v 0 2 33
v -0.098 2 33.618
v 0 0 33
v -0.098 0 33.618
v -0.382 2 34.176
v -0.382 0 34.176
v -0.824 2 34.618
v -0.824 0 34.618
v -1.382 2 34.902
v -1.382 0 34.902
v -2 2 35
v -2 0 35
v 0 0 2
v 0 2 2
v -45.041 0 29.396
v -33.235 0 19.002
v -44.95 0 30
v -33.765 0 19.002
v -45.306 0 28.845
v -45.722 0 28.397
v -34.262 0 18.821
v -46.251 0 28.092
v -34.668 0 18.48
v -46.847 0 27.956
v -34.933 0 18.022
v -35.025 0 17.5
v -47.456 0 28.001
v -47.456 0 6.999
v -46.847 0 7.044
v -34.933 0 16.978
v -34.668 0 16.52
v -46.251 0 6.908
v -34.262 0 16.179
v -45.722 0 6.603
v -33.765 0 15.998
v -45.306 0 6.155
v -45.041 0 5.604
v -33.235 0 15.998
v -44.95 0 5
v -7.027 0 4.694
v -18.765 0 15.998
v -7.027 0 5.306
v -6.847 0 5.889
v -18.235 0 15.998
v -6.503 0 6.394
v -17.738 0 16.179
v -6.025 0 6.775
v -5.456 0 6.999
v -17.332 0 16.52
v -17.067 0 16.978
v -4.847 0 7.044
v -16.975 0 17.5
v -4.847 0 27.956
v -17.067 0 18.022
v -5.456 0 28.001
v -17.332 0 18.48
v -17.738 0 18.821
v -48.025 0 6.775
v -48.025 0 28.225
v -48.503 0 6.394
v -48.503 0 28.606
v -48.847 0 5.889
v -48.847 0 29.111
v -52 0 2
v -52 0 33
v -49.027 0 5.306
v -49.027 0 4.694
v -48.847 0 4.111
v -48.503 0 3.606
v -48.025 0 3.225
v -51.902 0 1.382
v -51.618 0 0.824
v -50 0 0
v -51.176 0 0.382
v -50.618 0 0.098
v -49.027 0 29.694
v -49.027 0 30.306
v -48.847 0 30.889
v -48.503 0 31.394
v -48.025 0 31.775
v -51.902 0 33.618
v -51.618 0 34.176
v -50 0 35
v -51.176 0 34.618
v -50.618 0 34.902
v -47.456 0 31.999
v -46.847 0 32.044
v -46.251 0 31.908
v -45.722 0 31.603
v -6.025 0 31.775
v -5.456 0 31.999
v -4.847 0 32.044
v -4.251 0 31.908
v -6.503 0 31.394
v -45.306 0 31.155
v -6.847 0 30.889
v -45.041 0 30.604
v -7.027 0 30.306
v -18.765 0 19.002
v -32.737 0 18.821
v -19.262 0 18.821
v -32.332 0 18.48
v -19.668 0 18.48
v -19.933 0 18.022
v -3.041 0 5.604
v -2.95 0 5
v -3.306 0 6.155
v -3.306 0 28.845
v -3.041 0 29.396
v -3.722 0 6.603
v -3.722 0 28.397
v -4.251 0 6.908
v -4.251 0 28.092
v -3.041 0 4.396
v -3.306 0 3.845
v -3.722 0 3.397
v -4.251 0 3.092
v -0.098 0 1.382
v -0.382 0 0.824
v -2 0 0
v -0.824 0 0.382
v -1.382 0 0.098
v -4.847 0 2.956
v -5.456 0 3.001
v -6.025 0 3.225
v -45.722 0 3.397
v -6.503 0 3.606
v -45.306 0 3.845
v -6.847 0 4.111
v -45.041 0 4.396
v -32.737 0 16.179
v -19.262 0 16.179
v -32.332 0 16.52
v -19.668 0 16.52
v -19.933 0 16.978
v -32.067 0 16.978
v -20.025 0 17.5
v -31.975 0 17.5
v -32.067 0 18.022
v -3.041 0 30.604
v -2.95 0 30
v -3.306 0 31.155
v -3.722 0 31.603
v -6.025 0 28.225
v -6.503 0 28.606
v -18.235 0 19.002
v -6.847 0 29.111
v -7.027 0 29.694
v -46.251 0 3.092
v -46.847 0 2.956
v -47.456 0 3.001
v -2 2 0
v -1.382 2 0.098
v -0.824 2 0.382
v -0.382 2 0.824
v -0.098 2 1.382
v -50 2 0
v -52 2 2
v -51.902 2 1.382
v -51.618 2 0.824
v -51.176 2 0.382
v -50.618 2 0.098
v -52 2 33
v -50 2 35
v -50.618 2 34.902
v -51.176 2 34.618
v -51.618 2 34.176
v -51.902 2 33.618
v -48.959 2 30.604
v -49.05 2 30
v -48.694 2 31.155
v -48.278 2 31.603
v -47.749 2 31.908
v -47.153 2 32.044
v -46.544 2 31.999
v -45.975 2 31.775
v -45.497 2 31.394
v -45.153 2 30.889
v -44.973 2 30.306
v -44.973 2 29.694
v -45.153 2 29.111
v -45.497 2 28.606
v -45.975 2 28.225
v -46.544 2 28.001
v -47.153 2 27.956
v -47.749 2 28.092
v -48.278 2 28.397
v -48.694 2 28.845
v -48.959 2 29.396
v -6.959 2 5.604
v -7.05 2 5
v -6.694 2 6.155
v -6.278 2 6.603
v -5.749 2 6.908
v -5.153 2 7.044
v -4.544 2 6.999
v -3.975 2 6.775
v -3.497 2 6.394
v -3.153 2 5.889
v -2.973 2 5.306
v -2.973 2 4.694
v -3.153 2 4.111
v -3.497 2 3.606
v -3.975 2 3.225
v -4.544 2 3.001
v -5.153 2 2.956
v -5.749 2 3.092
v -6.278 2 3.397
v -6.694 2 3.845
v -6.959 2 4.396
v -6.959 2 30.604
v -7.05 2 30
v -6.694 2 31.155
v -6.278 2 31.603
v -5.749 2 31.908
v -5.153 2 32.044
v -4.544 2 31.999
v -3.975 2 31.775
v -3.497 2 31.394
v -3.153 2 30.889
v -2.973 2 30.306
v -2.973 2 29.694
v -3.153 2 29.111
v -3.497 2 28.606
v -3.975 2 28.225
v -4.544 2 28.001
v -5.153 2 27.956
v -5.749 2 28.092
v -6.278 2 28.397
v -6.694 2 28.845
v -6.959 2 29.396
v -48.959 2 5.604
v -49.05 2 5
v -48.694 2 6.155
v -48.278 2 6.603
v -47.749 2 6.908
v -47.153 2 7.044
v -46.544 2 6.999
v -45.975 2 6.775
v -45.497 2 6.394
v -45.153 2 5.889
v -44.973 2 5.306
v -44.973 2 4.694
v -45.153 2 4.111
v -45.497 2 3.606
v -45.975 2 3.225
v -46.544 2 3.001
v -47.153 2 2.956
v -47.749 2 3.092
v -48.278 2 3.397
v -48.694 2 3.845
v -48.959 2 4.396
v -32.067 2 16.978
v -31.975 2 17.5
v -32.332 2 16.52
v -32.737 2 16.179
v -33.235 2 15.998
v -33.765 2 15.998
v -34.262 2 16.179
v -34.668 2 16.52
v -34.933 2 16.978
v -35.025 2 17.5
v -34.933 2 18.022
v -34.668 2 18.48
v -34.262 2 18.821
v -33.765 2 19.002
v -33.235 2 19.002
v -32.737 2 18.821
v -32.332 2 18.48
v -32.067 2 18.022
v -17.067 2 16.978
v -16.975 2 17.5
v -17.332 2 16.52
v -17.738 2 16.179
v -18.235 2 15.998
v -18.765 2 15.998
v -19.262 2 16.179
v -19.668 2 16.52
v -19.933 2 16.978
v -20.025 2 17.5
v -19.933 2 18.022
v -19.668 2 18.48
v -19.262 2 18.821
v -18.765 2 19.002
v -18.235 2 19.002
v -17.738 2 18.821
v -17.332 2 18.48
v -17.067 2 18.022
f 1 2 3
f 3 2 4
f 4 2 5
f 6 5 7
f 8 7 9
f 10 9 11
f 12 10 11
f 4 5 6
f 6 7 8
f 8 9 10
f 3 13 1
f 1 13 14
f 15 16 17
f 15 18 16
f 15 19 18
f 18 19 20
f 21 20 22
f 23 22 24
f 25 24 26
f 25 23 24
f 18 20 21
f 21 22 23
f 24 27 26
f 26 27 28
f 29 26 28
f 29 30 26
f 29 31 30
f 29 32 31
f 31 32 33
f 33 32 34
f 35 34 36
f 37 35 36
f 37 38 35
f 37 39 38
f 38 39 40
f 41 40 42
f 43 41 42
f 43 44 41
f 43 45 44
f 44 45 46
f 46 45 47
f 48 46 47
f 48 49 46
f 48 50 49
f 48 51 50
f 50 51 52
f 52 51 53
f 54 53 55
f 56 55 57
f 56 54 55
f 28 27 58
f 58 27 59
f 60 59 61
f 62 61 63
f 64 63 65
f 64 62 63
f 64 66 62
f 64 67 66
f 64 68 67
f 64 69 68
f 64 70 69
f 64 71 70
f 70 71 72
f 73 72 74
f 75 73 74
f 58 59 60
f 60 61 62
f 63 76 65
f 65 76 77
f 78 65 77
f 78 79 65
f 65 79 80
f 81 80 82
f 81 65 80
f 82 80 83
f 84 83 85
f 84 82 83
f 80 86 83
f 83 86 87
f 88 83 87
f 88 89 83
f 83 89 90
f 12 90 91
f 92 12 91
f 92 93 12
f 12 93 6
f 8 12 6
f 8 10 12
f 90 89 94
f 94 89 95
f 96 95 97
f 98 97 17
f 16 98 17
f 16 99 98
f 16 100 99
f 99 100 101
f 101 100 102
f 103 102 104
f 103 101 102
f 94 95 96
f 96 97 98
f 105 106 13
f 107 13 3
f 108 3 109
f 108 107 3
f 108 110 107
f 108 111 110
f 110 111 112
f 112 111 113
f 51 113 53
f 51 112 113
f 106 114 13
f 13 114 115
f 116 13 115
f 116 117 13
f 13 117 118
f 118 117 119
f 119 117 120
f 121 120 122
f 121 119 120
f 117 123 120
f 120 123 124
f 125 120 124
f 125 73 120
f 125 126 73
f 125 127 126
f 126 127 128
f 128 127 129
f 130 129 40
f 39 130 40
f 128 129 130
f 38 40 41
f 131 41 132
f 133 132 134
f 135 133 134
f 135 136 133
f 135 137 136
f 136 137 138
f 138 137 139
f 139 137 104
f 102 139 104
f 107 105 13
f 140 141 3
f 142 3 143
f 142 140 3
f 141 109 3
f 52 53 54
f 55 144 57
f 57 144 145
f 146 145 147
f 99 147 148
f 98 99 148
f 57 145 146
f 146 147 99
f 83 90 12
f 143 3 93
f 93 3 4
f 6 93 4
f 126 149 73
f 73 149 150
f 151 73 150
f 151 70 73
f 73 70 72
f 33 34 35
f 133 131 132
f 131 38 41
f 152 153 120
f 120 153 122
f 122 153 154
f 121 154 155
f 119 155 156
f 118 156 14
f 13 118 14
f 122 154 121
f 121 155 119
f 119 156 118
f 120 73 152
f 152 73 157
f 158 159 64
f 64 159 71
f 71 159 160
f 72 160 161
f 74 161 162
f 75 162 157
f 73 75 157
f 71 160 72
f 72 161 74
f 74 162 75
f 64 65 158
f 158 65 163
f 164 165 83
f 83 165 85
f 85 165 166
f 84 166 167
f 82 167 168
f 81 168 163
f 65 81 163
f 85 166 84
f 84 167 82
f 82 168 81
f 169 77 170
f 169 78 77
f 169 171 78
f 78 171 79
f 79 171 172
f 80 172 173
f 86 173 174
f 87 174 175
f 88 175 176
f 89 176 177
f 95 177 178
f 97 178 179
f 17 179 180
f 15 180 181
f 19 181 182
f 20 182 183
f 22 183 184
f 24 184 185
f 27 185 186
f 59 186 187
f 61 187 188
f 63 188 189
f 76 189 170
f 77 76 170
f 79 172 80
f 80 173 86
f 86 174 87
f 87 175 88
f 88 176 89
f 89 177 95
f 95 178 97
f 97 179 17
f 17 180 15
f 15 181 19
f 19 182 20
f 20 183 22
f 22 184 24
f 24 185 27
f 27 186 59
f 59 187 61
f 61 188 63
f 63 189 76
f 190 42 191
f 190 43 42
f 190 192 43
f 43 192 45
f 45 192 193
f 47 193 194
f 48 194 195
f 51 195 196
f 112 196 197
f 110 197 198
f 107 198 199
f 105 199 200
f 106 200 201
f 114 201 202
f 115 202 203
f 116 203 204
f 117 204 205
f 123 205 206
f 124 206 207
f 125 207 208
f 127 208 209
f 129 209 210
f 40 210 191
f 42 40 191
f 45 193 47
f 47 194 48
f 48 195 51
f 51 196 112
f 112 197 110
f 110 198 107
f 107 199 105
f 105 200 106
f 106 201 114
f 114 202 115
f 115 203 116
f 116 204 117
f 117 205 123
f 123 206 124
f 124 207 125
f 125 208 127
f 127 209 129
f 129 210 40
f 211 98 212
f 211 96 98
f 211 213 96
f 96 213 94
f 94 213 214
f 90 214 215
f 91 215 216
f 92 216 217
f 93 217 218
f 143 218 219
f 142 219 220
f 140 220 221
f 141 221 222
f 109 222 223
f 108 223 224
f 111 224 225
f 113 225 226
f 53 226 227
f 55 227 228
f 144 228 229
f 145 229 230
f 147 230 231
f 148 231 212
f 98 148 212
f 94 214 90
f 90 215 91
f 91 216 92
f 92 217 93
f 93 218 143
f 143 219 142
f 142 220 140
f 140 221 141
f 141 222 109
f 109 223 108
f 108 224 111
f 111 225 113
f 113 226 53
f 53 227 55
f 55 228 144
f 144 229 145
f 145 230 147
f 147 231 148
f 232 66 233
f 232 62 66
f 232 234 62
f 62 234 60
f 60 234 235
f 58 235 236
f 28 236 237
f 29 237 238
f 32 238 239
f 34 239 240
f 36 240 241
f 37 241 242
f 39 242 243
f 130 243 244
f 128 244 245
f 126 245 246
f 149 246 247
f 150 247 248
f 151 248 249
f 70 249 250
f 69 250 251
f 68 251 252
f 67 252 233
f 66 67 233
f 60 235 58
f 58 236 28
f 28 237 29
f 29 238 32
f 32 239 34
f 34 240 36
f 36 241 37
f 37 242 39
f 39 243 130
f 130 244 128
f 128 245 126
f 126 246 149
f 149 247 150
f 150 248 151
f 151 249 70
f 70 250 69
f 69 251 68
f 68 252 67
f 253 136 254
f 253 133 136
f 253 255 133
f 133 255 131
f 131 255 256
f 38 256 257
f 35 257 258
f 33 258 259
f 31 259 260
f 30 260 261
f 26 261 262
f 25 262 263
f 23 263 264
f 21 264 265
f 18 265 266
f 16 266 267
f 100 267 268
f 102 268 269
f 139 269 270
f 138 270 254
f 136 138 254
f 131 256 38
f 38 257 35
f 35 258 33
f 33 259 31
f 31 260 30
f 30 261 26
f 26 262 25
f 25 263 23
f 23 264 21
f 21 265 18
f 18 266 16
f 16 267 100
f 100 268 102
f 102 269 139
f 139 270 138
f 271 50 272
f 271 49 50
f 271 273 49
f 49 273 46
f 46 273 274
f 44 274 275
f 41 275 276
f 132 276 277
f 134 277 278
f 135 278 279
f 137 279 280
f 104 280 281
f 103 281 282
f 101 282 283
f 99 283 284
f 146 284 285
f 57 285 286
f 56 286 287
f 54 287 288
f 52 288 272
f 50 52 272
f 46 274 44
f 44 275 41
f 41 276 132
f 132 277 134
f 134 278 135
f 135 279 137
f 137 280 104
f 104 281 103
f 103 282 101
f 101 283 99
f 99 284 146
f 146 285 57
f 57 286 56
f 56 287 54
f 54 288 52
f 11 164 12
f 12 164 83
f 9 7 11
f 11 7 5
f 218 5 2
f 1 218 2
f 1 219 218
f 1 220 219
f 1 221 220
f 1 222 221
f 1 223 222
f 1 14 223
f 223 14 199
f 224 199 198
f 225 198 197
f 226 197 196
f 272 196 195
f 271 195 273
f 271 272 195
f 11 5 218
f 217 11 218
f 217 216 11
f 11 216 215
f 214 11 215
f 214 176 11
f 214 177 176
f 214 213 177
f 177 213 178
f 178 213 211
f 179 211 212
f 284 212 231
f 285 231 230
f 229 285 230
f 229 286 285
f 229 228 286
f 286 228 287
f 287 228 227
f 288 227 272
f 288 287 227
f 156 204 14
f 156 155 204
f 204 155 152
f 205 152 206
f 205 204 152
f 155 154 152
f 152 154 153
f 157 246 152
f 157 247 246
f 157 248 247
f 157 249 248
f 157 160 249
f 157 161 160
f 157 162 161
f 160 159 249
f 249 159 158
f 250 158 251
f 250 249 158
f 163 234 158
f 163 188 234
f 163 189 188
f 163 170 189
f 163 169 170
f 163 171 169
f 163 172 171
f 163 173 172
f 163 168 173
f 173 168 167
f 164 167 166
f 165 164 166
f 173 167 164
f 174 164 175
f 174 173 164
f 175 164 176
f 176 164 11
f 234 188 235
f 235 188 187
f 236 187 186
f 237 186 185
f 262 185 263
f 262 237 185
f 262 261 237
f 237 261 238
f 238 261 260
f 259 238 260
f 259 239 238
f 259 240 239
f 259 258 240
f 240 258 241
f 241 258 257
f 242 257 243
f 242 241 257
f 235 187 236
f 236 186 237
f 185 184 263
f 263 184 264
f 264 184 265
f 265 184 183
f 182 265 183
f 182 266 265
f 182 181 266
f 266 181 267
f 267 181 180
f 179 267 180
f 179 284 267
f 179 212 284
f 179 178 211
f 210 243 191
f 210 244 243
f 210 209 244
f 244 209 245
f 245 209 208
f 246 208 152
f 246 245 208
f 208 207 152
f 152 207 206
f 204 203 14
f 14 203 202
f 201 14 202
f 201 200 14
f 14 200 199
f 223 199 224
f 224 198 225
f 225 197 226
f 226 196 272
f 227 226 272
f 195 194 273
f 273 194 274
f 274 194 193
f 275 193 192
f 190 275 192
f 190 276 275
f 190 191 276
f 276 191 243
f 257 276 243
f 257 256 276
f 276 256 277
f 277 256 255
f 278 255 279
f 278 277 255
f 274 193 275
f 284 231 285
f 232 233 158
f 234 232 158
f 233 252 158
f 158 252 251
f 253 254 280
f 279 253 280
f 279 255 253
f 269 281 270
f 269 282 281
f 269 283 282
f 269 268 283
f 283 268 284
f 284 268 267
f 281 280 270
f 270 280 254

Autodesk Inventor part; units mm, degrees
ref_plane "YZ Plane" through (0, 0, 0) normal (1, 0, 0) x (0, 1, 0)
ref_plane "XZ Plane" through (0, 0, 0) normal (0, 1, 0) x (-1, 0, 0)
ref_plane "XY Plane" through (0, 0, 0) normal (0, 0, 1) x (1, 0, 0)
sketch "Skizze2" plane through (0, 0, 0) normal (0, 1, 0) x (-1, 0, 0)
  line L0 (0, 0) -> (52, 0)
  line L1 (52, 0) -> (52, 35)
  line L2 (52, 35) -> (0, 35)
  line L3 (0, 35) -> (0, 0)
  dimension "d3" = 52
  dimension "d4" = 35
extrude "Extrusion1" add sketch "Skizze2" along normal blind 2
sketch "Skizze3" plane through (0, 0, 0) normal (0, -1, 0) x (1, 0, 0)
  line L0 (0, 35) -> (0, 0) projected
  line L1 (-52, 0) -> (-52, 35) projected
  line L2 (-52, 17.5) -> (0, 17.5)
  line L3 (-33.5, 17.5) -> (-18.5, 17.5)
  line L4 (-33.5, 17.5) -> (-52, 17.5)
  line L5 (-18.5, 17.5) -> (0, 17.5)
  circle A0 centre (-33.5, 17.5) radius 1.525
  circle A1 centre (-18.5, 17.5) radius 1.525
  dimension "d7" = 15
  dimension "d8" = 3.05
  dimension "d9" = 3.05
extrude "Extrusion2" cut sketch "Skizze3" against normal through all
sketch "Skizze6" plane through (0, 0, 0) normal (0, -1, 0) x (1, 0, 0)
  line L0 (0, 0) -> (-52, 0) projected
  line L1 (0, 35) -> (0, 0) projected
  line L2 (-52, 35) -> (0, 35) projected
  line L3 (-52, 0) -> (-52, 35) projected
  line L4 (-47, 30) -> (-5, 30)
  line L5 (-5, 30) -> (-5, 5)
  line L6 (-5, 5) -> (-47, 5)
  line L7 (-47, 5) -> (-47, 30)
  dimension "d17" = 5
  dimension "d18" = 5
  dimension "d19" = 5
  dimension "d20" = 5
hole "Bohrung1" at (-5, 0, 5) at (-5, 0, 30) at (-47, 0, 30) at (-47, 0, 5) direction (0, 1, 0) diameter 4.1 end through all
fillet "Rundung2" radius 2 4 edges at (-52, 1, 35) (-52, 1, 0) (0, 1, 0) (0, 1, 35)
properties part number "frontcncld"
